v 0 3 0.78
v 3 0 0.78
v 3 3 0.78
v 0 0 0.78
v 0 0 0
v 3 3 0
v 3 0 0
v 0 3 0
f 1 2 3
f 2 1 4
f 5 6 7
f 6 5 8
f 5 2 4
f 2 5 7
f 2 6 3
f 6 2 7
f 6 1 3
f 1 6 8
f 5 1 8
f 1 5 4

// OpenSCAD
/* Warning, this is a very basic generator with a lot of approximation 
input data : [WDFN, NLX, 3x3x0.78mm, 8, , A, C04-00523A]
generated by com.zoubworld.electronics.cad.model3d.Basic
Date : Sun Feb 15 10:50:48 CET 2026
*/

//body
color("black")
translate([0,0,0])
cube([3.0,3.0,0.78], center=false);
